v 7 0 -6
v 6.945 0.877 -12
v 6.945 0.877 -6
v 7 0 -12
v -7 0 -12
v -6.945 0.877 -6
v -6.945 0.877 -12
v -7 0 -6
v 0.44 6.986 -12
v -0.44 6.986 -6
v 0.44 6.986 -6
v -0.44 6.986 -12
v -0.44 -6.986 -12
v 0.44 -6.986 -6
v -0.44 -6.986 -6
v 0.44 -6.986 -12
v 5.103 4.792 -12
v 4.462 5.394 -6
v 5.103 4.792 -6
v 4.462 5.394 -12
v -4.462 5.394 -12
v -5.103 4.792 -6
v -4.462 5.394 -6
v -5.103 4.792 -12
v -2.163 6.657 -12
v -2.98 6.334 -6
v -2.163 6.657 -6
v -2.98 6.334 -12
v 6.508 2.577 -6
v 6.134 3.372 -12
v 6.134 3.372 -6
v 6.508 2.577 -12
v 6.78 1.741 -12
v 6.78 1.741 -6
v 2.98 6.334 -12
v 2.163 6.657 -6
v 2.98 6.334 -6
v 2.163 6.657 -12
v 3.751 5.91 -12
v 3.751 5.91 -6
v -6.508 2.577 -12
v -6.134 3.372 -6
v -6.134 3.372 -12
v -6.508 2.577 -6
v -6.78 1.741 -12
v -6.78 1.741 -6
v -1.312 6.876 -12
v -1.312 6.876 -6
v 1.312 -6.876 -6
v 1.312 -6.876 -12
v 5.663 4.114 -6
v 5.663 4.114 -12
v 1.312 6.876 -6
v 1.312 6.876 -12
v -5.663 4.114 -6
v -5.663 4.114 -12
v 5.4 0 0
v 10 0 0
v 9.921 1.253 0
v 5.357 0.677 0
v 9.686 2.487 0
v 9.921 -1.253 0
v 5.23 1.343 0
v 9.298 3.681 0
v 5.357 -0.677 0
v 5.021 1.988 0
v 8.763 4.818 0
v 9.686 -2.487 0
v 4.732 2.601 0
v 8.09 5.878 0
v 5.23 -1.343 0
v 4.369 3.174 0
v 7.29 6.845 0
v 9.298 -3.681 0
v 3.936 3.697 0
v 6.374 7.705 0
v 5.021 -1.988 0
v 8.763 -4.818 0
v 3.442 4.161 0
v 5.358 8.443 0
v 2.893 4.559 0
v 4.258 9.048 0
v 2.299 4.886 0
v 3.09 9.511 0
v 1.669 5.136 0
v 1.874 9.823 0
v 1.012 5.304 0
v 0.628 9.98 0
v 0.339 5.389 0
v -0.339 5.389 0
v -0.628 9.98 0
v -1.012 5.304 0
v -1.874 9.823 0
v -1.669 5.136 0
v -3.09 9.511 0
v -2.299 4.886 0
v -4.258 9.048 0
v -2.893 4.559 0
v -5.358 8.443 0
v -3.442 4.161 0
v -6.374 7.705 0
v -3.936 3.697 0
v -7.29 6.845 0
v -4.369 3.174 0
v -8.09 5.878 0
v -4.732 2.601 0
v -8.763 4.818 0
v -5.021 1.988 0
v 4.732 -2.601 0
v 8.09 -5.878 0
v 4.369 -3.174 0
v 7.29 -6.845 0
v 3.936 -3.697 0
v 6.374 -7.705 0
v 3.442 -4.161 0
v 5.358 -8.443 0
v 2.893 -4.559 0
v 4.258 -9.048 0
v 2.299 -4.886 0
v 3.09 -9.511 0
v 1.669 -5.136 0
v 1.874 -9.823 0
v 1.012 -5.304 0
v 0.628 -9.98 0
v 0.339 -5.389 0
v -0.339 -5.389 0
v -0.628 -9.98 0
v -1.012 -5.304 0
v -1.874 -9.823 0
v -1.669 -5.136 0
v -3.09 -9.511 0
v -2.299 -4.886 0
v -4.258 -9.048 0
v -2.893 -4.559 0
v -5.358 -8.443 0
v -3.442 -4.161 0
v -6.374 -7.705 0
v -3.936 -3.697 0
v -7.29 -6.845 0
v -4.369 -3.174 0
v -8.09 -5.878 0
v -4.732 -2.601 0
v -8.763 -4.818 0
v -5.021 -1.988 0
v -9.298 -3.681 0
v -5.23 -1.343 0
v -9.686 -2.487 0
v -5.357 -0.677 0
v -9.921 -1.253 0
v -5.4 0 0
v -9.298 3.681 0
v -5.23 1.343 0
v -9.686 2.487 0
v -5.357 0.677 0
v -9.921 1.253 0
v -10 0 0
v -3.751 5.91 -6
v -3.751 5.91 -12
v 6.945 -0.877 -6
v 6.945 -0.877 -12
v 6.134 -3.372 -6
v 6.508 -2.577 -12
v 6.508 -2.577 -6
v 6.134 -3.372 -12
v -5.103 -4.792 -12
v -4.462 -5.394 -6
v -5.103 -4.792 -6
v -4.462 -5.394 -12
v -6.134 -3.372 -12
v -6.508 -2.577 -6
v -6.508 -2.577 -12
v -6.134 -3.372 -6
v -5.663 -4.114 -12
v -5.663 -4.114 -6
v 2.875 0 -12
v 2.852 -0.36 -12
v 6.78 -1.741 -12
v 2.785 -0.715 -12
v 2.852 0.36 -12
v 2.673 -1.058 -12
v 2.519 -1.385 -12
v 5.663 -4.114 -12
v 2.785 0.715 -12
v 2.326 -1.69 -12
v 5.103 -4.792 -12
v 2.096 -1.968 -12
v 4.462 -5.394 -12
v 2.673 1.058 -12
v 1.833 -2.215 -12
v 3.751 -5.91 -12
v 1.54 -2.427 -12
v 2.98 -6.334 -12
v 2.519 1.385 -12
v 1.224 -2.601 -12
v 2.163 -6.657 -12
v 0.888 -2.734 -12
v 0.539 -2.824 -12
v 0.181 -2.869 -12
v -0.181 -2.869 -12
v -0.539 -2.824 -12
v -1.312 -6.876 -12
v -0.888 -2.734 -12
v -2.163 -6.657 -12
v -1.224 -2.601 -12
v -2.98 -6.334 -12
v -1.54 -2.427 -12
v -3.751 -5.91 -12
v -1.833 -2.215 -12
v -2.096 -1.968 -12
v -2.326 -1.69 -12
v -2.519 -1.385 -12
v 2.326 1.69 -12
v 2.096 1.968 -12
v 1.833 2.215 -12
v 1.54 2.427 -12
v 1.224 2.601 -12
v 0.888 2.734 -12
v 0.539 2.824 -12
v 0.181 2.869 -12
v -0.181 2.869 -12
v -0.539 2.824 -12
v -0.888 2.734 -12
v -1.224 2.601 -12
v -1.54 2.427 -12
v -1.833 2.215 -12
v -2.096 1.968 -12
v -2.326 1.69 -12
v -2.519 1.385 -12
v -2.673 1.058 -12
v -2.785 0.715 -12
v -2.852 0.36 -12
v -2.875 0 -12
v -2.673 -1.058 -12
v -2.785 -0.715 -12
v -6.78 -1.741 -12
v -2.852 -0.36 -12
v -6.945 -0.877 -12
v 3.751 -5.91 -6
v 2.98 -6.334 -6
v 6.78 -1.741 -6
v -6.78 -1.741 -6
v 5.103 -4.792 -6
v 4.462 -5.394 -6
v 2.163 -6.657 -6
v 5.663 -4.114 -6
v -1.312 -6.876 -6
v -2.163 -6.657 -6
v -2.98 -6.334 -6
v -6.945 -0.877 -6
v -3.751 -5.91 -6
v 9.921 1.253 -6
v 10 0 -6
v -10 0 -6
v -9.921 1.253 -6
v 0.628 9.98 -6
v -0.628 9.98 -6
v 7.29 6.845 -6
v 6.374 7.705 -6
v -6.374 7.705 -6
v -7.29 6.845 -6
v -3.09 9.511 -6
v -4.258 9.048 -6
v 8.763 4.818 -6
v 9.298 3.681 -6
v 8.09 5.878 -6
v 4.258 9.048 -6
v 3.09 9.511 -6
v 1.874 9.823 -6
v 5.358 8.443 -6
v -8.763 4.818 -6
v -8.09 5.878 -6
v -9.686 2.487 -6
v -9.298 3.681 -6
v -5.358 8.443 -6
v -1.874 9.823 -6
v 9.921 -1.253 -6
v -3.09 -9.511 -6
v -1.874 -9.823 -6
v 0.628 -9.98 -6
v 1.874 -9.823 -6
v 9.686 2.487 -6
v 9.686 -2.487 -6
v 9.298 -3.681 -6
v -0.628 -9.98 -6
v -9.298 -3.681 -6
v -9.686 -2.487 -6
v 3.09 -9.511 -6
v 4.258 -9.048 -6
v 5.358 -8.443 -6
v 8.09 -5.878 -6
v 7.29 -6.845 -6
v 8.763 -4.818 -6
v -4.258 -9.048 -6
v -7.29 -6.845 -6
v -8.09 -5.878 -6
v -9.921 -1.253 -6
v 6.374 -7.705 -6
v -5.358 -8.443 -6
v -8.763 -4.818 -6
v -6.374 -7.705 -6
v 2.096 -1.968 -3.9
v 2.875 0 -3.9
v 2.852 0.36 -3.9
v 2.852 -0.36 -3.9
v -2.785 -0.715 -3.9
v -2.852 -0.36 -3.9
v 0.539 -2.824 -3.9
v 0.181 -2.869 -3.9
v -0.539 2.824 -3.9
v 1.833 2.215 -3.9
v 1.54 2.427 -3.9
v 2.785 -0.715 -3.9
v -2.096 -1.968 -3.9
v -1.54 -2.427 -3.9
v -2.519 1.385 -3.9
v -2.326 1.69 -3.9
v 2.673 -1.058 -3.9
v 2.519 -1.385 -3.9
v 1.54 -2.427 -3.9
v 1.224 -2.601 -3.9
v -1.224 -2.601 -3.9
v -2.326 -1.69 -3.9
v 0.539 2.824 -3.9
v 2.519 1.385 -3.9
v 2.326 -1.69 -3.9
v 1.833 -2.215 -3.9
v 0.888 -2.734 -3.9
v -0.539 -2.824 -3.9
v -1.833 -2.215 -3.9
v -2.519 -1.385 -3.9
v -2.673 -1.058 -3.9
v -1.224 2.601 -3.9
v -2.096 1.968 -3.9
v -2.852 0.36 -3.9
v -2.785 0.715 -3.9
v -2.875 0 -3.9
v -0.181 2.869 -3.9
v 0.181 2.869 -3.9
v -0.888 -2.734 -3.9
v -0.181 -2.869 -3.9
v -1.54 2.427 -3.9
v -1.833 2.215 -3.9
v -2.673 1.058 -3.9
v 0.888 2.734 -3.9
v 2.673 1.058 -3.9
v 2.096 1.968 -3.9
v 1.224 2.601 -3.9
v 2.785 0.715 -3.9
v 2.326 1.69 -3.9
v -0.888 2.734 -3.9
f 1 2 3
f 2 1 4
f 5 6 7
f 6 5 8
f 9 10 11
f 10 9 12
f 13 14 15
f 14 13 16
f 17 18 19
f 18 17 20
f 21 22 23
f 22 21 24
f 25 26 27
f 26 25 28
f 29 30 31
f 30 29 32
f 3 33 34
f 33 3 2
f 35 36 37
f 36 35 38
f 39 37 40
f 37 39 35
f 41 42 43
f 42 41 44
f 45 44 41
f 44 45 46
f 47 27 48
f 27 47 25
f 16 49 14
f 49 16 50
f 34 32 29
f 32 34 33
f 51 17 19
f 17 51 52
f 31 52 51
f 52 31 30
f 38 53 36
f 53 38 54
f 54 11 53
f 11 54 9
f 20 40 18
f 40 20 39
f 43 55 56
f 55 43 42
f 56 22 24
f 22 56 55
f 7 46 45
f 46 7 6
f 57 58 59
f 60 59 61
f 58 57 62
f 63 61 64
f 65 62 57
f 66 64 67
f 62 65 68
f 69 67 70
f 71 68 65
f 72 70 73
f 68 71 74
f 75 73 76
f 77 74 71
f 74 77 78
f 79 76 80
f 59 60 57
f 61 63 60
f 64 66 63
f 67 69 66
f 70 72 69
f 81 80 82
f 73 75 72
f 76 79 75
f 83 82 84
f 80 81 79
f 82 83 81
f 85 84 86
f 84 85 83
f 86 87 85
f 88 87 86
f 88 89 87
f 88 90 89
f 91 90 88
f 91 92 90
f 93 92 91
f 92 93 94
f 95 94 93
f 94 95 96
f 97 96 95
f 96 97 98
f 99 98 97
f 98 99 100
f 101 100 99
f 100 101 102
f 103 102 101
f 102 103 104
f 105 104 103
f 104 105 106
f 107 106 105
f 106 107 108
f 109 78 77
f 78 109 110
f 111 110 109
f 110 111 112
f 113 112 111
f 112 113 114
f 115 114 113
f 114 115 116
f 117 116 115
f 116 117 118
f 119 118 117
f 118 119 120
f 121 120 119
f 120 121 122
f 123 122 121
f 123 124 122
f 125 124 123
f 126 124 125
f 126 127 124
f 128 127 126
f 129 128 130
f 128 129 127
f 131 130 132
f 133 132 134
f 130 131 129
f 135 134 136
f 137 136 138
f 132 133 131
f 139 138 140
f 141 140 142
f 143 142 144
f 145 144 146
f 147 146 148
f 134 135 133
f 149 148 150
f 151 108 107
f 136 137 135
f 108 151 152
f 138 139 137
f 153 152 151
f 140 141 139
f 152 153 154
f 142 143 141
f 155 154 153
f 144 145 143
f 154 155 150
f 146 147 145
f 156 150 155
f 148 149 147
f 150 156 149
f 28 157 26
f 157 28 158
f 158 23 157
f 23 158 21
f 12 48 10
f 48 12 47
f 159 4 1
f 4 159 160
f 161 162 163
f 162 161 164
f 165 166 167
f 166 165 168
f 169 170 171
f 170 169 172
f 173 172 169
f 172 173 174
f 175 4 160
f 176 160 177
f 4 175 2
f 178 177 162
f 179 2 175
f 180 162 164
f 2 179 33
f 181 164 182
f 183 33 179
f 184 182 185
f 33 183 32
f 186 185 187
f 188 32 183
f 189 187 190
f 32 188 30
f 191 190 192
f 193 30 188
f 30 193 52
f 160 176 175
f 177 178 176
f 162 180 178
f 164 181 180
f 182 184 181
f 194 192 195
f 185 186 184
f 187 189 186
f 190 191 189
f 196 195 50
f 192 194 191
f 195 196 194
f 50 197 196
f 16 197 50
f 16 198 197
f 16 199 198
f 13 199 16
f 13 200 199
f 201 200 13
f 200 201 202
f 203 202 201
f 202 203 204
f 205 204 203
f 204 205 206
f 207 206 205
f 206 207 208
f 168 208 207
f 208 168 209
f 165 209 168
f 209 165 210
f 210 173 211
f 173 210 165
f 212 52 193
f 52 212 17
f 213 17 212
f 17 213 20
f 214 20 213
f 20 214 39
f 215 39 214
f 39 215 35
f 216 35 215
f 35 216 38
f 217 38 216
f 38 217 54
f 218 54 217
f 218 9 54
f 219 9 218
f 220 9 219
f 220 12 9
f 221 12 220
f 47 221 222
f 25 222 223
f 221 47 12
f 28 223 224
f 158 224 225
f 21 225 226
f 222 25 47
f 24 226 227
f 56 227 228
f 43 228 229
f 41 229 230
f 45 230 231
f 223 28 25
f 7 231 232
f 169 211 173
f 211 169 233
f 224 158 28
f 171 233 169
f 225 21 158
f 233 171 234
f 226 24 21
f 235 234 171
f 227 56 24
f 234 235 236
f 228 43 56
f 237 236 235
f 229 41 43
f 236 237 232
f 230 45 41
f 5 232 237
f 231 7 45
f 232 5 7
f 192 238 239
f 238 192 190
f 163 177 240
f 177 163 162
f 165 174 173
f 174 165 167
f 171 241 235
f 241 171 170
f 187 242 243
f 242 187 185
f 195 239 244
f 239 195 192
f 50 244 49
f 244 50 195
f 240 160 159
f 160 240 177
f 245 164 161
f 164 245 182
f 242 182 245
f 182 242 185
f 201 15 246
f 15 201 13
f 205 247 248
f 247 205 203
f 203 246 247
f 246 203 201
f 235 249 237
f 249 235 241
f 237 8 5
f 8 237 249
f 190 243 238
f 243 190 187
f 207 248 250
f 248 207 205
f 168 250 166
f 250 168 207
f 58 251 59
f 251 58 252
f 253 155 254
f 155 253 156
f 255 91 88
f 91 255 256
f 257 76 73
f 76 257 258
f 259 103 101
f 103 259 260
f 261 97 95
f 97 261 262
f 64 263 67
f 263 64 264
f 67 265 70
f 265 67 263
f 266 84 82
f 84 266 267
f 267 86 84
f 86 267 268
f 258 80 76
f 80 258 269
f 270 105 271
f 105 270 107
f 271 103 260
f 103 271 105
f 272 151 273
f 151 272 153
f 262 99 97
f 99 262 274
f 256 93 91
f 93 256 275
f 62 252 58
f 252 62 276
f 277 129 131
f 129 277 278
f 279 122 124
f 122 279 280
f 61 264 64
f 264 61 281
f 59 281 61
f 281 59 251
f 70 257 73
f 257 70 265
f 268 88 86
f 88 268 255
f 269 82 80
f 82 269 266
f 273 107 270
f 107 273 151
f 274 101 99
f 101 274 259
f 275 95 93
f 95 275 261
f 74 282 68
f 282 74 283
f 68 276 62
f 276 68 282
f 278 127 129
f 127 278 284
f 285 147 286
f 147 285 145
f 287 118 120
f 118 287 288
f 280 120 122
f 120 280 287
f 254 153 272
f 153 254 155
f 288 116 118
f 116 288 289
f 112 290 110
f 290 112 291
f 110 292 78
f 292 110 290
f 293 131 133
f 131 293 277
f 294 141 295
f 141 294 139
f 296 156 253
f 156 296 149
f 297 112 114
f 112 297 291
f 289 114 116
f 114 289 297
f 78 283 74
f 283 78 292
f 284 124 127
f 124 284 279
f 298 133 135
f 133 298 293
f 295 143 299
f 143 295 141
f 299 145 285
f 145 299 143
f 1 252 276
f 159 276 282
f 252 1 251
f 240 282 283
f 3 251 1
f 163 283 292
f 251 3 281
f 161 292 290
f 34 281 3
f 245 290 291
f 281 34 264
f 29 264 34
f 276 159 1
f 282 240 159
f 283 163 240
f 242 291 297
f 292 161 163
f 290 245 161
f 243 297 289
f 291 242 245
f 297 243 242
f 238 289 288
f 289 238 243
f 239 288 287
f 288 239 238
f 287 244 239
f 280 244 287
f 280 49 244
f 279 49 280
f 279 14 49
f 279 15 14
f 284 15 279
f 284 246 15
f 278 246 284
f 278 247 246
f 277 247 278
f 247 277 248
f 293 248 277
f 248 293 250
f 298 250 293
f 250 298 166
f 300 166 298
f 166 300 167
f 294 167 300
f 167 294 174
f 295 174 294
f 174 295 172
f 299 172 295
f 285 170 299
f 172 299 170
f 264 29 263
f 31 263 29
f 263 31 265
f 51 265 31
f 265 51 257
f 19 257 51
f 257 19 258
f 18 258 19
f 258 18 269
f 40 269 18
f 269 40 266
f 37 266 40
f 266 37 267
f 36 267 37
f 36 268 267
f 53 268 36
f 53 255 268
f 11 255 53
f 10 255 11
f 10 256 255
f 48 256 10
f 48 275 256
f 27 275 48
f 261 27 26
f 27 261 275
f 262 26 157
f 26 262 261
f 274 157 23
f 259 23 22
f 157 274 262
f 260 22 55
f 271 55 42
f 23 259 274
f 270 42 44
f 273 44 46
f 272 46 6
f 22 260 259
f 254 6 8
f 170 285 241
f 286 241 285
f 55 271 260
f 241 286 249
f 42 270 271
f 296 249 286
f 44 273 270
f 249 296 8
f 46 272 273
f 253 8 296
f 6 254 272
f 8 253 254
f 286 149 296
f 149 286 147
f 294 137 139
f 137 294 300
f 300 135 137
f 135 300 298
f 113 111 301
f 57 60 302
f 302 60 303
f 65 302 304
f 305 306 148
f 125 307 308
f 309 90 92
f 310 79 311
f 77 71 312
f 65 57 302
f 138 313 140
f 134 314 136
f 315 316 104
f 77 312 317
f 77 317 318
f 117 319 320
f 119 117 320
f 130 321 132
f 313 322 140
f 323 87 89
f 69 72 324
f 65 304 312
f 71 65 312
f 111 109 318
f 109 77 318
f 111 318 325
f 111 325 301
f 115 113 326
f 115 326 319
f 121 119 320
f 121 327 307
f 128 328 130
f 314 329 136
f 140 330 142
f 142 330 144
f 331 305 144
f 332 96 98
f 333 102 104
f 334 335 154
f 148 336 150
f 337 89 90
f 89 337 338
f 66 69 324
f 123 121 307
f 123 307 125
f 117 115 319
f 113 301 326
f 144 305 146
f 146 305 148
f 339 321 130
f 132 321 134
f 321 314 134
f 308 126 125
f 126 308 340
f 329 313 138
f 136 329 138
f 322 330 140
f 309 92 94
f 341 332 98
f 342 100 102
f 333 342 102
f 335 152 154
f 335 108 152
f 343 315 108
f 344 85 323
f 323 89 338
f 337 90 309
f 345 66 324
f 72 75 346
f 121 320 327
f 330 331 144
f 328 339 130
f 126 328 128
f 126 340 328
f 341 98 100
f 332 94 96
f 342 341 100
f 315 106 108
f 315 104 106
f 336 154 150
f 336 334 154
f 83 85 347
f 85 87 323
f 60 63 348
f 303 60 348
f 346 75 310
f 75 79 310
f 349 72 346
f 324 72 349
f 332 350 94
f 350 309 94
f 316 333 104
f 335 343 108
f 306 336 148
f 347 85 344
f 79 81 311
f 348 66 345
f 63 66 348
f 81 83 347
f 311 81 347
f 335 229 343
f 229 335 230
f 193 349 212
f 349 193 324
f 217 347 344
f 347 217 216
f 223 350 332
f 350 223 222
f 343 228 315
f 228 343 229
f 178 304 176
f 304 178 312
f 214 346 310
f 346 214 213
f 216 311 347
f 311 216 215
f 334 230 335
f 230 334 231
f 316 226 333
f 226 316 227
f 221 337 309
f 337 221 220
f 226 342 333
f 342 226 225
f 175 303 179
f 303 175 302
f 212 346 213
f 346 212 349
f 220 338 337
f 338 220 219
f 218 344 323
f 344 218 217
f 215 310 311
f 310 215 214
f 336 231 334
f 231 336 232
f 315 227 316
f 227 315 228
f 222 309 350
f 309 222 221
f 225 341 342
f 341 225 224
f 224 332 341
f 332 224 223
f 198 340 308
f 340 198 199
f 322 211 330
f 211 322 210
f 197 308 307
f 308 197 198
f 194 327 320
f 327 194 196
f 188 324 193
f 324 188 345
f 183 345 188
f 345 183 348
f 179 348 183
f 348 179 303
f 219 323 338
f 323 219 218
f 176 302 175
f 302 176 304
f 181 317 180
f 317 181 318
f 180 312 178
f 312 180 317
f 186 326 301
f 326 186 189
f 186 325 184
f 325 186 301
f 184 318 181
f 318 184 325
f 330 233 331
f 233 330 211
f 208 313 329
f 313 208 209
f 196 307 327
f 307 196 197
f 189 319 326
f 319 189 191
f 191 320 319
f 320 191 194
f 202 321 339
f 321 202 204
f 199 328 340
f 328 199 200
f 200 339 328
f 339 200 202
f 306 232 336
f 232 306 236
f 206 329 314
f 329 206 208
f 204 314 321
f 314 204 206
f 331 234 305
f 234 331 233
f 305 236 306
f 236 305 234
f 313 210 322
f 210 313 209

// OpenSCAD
$fn = 50;


difference() {
	union() {
		translate(v = [0, 0, -12.0000000000]) {
			cylinder(h = 12, r = 7.0000000000);
		}
		translate(v = [0, 0, -6.0000000000]) {
			cylinder(h = 6, r = 10.0000000000);
		}
	}
	union() {
		translate(v = [0, 0, 0]) {
			rotate(a = [0, 0, 0]) {
				difference() {
					union() {
						#translate(v = [0, 0, -12.0000000000]) {
							cylinder(h = 12, r = 2.6000000000);
						}
						#translate(v = [0, 0, -3.9000000000]) {
							cylinder(h = 3.9000000000, r = 7.0000000000, r1 = 2.8750000000, r2 = 5.4000000000);
						}
						#translate(v = [0, 0, -12.0000000000]) {
							cylinder(h = 12, r = 2.8750000000);
						}
						#translate(v = [0, 0, -12.0000000000]) {
							cylinder(h = 12, r = 2.6000000000);
						}
					}
					union();
				}
			}
		}
	}
}
